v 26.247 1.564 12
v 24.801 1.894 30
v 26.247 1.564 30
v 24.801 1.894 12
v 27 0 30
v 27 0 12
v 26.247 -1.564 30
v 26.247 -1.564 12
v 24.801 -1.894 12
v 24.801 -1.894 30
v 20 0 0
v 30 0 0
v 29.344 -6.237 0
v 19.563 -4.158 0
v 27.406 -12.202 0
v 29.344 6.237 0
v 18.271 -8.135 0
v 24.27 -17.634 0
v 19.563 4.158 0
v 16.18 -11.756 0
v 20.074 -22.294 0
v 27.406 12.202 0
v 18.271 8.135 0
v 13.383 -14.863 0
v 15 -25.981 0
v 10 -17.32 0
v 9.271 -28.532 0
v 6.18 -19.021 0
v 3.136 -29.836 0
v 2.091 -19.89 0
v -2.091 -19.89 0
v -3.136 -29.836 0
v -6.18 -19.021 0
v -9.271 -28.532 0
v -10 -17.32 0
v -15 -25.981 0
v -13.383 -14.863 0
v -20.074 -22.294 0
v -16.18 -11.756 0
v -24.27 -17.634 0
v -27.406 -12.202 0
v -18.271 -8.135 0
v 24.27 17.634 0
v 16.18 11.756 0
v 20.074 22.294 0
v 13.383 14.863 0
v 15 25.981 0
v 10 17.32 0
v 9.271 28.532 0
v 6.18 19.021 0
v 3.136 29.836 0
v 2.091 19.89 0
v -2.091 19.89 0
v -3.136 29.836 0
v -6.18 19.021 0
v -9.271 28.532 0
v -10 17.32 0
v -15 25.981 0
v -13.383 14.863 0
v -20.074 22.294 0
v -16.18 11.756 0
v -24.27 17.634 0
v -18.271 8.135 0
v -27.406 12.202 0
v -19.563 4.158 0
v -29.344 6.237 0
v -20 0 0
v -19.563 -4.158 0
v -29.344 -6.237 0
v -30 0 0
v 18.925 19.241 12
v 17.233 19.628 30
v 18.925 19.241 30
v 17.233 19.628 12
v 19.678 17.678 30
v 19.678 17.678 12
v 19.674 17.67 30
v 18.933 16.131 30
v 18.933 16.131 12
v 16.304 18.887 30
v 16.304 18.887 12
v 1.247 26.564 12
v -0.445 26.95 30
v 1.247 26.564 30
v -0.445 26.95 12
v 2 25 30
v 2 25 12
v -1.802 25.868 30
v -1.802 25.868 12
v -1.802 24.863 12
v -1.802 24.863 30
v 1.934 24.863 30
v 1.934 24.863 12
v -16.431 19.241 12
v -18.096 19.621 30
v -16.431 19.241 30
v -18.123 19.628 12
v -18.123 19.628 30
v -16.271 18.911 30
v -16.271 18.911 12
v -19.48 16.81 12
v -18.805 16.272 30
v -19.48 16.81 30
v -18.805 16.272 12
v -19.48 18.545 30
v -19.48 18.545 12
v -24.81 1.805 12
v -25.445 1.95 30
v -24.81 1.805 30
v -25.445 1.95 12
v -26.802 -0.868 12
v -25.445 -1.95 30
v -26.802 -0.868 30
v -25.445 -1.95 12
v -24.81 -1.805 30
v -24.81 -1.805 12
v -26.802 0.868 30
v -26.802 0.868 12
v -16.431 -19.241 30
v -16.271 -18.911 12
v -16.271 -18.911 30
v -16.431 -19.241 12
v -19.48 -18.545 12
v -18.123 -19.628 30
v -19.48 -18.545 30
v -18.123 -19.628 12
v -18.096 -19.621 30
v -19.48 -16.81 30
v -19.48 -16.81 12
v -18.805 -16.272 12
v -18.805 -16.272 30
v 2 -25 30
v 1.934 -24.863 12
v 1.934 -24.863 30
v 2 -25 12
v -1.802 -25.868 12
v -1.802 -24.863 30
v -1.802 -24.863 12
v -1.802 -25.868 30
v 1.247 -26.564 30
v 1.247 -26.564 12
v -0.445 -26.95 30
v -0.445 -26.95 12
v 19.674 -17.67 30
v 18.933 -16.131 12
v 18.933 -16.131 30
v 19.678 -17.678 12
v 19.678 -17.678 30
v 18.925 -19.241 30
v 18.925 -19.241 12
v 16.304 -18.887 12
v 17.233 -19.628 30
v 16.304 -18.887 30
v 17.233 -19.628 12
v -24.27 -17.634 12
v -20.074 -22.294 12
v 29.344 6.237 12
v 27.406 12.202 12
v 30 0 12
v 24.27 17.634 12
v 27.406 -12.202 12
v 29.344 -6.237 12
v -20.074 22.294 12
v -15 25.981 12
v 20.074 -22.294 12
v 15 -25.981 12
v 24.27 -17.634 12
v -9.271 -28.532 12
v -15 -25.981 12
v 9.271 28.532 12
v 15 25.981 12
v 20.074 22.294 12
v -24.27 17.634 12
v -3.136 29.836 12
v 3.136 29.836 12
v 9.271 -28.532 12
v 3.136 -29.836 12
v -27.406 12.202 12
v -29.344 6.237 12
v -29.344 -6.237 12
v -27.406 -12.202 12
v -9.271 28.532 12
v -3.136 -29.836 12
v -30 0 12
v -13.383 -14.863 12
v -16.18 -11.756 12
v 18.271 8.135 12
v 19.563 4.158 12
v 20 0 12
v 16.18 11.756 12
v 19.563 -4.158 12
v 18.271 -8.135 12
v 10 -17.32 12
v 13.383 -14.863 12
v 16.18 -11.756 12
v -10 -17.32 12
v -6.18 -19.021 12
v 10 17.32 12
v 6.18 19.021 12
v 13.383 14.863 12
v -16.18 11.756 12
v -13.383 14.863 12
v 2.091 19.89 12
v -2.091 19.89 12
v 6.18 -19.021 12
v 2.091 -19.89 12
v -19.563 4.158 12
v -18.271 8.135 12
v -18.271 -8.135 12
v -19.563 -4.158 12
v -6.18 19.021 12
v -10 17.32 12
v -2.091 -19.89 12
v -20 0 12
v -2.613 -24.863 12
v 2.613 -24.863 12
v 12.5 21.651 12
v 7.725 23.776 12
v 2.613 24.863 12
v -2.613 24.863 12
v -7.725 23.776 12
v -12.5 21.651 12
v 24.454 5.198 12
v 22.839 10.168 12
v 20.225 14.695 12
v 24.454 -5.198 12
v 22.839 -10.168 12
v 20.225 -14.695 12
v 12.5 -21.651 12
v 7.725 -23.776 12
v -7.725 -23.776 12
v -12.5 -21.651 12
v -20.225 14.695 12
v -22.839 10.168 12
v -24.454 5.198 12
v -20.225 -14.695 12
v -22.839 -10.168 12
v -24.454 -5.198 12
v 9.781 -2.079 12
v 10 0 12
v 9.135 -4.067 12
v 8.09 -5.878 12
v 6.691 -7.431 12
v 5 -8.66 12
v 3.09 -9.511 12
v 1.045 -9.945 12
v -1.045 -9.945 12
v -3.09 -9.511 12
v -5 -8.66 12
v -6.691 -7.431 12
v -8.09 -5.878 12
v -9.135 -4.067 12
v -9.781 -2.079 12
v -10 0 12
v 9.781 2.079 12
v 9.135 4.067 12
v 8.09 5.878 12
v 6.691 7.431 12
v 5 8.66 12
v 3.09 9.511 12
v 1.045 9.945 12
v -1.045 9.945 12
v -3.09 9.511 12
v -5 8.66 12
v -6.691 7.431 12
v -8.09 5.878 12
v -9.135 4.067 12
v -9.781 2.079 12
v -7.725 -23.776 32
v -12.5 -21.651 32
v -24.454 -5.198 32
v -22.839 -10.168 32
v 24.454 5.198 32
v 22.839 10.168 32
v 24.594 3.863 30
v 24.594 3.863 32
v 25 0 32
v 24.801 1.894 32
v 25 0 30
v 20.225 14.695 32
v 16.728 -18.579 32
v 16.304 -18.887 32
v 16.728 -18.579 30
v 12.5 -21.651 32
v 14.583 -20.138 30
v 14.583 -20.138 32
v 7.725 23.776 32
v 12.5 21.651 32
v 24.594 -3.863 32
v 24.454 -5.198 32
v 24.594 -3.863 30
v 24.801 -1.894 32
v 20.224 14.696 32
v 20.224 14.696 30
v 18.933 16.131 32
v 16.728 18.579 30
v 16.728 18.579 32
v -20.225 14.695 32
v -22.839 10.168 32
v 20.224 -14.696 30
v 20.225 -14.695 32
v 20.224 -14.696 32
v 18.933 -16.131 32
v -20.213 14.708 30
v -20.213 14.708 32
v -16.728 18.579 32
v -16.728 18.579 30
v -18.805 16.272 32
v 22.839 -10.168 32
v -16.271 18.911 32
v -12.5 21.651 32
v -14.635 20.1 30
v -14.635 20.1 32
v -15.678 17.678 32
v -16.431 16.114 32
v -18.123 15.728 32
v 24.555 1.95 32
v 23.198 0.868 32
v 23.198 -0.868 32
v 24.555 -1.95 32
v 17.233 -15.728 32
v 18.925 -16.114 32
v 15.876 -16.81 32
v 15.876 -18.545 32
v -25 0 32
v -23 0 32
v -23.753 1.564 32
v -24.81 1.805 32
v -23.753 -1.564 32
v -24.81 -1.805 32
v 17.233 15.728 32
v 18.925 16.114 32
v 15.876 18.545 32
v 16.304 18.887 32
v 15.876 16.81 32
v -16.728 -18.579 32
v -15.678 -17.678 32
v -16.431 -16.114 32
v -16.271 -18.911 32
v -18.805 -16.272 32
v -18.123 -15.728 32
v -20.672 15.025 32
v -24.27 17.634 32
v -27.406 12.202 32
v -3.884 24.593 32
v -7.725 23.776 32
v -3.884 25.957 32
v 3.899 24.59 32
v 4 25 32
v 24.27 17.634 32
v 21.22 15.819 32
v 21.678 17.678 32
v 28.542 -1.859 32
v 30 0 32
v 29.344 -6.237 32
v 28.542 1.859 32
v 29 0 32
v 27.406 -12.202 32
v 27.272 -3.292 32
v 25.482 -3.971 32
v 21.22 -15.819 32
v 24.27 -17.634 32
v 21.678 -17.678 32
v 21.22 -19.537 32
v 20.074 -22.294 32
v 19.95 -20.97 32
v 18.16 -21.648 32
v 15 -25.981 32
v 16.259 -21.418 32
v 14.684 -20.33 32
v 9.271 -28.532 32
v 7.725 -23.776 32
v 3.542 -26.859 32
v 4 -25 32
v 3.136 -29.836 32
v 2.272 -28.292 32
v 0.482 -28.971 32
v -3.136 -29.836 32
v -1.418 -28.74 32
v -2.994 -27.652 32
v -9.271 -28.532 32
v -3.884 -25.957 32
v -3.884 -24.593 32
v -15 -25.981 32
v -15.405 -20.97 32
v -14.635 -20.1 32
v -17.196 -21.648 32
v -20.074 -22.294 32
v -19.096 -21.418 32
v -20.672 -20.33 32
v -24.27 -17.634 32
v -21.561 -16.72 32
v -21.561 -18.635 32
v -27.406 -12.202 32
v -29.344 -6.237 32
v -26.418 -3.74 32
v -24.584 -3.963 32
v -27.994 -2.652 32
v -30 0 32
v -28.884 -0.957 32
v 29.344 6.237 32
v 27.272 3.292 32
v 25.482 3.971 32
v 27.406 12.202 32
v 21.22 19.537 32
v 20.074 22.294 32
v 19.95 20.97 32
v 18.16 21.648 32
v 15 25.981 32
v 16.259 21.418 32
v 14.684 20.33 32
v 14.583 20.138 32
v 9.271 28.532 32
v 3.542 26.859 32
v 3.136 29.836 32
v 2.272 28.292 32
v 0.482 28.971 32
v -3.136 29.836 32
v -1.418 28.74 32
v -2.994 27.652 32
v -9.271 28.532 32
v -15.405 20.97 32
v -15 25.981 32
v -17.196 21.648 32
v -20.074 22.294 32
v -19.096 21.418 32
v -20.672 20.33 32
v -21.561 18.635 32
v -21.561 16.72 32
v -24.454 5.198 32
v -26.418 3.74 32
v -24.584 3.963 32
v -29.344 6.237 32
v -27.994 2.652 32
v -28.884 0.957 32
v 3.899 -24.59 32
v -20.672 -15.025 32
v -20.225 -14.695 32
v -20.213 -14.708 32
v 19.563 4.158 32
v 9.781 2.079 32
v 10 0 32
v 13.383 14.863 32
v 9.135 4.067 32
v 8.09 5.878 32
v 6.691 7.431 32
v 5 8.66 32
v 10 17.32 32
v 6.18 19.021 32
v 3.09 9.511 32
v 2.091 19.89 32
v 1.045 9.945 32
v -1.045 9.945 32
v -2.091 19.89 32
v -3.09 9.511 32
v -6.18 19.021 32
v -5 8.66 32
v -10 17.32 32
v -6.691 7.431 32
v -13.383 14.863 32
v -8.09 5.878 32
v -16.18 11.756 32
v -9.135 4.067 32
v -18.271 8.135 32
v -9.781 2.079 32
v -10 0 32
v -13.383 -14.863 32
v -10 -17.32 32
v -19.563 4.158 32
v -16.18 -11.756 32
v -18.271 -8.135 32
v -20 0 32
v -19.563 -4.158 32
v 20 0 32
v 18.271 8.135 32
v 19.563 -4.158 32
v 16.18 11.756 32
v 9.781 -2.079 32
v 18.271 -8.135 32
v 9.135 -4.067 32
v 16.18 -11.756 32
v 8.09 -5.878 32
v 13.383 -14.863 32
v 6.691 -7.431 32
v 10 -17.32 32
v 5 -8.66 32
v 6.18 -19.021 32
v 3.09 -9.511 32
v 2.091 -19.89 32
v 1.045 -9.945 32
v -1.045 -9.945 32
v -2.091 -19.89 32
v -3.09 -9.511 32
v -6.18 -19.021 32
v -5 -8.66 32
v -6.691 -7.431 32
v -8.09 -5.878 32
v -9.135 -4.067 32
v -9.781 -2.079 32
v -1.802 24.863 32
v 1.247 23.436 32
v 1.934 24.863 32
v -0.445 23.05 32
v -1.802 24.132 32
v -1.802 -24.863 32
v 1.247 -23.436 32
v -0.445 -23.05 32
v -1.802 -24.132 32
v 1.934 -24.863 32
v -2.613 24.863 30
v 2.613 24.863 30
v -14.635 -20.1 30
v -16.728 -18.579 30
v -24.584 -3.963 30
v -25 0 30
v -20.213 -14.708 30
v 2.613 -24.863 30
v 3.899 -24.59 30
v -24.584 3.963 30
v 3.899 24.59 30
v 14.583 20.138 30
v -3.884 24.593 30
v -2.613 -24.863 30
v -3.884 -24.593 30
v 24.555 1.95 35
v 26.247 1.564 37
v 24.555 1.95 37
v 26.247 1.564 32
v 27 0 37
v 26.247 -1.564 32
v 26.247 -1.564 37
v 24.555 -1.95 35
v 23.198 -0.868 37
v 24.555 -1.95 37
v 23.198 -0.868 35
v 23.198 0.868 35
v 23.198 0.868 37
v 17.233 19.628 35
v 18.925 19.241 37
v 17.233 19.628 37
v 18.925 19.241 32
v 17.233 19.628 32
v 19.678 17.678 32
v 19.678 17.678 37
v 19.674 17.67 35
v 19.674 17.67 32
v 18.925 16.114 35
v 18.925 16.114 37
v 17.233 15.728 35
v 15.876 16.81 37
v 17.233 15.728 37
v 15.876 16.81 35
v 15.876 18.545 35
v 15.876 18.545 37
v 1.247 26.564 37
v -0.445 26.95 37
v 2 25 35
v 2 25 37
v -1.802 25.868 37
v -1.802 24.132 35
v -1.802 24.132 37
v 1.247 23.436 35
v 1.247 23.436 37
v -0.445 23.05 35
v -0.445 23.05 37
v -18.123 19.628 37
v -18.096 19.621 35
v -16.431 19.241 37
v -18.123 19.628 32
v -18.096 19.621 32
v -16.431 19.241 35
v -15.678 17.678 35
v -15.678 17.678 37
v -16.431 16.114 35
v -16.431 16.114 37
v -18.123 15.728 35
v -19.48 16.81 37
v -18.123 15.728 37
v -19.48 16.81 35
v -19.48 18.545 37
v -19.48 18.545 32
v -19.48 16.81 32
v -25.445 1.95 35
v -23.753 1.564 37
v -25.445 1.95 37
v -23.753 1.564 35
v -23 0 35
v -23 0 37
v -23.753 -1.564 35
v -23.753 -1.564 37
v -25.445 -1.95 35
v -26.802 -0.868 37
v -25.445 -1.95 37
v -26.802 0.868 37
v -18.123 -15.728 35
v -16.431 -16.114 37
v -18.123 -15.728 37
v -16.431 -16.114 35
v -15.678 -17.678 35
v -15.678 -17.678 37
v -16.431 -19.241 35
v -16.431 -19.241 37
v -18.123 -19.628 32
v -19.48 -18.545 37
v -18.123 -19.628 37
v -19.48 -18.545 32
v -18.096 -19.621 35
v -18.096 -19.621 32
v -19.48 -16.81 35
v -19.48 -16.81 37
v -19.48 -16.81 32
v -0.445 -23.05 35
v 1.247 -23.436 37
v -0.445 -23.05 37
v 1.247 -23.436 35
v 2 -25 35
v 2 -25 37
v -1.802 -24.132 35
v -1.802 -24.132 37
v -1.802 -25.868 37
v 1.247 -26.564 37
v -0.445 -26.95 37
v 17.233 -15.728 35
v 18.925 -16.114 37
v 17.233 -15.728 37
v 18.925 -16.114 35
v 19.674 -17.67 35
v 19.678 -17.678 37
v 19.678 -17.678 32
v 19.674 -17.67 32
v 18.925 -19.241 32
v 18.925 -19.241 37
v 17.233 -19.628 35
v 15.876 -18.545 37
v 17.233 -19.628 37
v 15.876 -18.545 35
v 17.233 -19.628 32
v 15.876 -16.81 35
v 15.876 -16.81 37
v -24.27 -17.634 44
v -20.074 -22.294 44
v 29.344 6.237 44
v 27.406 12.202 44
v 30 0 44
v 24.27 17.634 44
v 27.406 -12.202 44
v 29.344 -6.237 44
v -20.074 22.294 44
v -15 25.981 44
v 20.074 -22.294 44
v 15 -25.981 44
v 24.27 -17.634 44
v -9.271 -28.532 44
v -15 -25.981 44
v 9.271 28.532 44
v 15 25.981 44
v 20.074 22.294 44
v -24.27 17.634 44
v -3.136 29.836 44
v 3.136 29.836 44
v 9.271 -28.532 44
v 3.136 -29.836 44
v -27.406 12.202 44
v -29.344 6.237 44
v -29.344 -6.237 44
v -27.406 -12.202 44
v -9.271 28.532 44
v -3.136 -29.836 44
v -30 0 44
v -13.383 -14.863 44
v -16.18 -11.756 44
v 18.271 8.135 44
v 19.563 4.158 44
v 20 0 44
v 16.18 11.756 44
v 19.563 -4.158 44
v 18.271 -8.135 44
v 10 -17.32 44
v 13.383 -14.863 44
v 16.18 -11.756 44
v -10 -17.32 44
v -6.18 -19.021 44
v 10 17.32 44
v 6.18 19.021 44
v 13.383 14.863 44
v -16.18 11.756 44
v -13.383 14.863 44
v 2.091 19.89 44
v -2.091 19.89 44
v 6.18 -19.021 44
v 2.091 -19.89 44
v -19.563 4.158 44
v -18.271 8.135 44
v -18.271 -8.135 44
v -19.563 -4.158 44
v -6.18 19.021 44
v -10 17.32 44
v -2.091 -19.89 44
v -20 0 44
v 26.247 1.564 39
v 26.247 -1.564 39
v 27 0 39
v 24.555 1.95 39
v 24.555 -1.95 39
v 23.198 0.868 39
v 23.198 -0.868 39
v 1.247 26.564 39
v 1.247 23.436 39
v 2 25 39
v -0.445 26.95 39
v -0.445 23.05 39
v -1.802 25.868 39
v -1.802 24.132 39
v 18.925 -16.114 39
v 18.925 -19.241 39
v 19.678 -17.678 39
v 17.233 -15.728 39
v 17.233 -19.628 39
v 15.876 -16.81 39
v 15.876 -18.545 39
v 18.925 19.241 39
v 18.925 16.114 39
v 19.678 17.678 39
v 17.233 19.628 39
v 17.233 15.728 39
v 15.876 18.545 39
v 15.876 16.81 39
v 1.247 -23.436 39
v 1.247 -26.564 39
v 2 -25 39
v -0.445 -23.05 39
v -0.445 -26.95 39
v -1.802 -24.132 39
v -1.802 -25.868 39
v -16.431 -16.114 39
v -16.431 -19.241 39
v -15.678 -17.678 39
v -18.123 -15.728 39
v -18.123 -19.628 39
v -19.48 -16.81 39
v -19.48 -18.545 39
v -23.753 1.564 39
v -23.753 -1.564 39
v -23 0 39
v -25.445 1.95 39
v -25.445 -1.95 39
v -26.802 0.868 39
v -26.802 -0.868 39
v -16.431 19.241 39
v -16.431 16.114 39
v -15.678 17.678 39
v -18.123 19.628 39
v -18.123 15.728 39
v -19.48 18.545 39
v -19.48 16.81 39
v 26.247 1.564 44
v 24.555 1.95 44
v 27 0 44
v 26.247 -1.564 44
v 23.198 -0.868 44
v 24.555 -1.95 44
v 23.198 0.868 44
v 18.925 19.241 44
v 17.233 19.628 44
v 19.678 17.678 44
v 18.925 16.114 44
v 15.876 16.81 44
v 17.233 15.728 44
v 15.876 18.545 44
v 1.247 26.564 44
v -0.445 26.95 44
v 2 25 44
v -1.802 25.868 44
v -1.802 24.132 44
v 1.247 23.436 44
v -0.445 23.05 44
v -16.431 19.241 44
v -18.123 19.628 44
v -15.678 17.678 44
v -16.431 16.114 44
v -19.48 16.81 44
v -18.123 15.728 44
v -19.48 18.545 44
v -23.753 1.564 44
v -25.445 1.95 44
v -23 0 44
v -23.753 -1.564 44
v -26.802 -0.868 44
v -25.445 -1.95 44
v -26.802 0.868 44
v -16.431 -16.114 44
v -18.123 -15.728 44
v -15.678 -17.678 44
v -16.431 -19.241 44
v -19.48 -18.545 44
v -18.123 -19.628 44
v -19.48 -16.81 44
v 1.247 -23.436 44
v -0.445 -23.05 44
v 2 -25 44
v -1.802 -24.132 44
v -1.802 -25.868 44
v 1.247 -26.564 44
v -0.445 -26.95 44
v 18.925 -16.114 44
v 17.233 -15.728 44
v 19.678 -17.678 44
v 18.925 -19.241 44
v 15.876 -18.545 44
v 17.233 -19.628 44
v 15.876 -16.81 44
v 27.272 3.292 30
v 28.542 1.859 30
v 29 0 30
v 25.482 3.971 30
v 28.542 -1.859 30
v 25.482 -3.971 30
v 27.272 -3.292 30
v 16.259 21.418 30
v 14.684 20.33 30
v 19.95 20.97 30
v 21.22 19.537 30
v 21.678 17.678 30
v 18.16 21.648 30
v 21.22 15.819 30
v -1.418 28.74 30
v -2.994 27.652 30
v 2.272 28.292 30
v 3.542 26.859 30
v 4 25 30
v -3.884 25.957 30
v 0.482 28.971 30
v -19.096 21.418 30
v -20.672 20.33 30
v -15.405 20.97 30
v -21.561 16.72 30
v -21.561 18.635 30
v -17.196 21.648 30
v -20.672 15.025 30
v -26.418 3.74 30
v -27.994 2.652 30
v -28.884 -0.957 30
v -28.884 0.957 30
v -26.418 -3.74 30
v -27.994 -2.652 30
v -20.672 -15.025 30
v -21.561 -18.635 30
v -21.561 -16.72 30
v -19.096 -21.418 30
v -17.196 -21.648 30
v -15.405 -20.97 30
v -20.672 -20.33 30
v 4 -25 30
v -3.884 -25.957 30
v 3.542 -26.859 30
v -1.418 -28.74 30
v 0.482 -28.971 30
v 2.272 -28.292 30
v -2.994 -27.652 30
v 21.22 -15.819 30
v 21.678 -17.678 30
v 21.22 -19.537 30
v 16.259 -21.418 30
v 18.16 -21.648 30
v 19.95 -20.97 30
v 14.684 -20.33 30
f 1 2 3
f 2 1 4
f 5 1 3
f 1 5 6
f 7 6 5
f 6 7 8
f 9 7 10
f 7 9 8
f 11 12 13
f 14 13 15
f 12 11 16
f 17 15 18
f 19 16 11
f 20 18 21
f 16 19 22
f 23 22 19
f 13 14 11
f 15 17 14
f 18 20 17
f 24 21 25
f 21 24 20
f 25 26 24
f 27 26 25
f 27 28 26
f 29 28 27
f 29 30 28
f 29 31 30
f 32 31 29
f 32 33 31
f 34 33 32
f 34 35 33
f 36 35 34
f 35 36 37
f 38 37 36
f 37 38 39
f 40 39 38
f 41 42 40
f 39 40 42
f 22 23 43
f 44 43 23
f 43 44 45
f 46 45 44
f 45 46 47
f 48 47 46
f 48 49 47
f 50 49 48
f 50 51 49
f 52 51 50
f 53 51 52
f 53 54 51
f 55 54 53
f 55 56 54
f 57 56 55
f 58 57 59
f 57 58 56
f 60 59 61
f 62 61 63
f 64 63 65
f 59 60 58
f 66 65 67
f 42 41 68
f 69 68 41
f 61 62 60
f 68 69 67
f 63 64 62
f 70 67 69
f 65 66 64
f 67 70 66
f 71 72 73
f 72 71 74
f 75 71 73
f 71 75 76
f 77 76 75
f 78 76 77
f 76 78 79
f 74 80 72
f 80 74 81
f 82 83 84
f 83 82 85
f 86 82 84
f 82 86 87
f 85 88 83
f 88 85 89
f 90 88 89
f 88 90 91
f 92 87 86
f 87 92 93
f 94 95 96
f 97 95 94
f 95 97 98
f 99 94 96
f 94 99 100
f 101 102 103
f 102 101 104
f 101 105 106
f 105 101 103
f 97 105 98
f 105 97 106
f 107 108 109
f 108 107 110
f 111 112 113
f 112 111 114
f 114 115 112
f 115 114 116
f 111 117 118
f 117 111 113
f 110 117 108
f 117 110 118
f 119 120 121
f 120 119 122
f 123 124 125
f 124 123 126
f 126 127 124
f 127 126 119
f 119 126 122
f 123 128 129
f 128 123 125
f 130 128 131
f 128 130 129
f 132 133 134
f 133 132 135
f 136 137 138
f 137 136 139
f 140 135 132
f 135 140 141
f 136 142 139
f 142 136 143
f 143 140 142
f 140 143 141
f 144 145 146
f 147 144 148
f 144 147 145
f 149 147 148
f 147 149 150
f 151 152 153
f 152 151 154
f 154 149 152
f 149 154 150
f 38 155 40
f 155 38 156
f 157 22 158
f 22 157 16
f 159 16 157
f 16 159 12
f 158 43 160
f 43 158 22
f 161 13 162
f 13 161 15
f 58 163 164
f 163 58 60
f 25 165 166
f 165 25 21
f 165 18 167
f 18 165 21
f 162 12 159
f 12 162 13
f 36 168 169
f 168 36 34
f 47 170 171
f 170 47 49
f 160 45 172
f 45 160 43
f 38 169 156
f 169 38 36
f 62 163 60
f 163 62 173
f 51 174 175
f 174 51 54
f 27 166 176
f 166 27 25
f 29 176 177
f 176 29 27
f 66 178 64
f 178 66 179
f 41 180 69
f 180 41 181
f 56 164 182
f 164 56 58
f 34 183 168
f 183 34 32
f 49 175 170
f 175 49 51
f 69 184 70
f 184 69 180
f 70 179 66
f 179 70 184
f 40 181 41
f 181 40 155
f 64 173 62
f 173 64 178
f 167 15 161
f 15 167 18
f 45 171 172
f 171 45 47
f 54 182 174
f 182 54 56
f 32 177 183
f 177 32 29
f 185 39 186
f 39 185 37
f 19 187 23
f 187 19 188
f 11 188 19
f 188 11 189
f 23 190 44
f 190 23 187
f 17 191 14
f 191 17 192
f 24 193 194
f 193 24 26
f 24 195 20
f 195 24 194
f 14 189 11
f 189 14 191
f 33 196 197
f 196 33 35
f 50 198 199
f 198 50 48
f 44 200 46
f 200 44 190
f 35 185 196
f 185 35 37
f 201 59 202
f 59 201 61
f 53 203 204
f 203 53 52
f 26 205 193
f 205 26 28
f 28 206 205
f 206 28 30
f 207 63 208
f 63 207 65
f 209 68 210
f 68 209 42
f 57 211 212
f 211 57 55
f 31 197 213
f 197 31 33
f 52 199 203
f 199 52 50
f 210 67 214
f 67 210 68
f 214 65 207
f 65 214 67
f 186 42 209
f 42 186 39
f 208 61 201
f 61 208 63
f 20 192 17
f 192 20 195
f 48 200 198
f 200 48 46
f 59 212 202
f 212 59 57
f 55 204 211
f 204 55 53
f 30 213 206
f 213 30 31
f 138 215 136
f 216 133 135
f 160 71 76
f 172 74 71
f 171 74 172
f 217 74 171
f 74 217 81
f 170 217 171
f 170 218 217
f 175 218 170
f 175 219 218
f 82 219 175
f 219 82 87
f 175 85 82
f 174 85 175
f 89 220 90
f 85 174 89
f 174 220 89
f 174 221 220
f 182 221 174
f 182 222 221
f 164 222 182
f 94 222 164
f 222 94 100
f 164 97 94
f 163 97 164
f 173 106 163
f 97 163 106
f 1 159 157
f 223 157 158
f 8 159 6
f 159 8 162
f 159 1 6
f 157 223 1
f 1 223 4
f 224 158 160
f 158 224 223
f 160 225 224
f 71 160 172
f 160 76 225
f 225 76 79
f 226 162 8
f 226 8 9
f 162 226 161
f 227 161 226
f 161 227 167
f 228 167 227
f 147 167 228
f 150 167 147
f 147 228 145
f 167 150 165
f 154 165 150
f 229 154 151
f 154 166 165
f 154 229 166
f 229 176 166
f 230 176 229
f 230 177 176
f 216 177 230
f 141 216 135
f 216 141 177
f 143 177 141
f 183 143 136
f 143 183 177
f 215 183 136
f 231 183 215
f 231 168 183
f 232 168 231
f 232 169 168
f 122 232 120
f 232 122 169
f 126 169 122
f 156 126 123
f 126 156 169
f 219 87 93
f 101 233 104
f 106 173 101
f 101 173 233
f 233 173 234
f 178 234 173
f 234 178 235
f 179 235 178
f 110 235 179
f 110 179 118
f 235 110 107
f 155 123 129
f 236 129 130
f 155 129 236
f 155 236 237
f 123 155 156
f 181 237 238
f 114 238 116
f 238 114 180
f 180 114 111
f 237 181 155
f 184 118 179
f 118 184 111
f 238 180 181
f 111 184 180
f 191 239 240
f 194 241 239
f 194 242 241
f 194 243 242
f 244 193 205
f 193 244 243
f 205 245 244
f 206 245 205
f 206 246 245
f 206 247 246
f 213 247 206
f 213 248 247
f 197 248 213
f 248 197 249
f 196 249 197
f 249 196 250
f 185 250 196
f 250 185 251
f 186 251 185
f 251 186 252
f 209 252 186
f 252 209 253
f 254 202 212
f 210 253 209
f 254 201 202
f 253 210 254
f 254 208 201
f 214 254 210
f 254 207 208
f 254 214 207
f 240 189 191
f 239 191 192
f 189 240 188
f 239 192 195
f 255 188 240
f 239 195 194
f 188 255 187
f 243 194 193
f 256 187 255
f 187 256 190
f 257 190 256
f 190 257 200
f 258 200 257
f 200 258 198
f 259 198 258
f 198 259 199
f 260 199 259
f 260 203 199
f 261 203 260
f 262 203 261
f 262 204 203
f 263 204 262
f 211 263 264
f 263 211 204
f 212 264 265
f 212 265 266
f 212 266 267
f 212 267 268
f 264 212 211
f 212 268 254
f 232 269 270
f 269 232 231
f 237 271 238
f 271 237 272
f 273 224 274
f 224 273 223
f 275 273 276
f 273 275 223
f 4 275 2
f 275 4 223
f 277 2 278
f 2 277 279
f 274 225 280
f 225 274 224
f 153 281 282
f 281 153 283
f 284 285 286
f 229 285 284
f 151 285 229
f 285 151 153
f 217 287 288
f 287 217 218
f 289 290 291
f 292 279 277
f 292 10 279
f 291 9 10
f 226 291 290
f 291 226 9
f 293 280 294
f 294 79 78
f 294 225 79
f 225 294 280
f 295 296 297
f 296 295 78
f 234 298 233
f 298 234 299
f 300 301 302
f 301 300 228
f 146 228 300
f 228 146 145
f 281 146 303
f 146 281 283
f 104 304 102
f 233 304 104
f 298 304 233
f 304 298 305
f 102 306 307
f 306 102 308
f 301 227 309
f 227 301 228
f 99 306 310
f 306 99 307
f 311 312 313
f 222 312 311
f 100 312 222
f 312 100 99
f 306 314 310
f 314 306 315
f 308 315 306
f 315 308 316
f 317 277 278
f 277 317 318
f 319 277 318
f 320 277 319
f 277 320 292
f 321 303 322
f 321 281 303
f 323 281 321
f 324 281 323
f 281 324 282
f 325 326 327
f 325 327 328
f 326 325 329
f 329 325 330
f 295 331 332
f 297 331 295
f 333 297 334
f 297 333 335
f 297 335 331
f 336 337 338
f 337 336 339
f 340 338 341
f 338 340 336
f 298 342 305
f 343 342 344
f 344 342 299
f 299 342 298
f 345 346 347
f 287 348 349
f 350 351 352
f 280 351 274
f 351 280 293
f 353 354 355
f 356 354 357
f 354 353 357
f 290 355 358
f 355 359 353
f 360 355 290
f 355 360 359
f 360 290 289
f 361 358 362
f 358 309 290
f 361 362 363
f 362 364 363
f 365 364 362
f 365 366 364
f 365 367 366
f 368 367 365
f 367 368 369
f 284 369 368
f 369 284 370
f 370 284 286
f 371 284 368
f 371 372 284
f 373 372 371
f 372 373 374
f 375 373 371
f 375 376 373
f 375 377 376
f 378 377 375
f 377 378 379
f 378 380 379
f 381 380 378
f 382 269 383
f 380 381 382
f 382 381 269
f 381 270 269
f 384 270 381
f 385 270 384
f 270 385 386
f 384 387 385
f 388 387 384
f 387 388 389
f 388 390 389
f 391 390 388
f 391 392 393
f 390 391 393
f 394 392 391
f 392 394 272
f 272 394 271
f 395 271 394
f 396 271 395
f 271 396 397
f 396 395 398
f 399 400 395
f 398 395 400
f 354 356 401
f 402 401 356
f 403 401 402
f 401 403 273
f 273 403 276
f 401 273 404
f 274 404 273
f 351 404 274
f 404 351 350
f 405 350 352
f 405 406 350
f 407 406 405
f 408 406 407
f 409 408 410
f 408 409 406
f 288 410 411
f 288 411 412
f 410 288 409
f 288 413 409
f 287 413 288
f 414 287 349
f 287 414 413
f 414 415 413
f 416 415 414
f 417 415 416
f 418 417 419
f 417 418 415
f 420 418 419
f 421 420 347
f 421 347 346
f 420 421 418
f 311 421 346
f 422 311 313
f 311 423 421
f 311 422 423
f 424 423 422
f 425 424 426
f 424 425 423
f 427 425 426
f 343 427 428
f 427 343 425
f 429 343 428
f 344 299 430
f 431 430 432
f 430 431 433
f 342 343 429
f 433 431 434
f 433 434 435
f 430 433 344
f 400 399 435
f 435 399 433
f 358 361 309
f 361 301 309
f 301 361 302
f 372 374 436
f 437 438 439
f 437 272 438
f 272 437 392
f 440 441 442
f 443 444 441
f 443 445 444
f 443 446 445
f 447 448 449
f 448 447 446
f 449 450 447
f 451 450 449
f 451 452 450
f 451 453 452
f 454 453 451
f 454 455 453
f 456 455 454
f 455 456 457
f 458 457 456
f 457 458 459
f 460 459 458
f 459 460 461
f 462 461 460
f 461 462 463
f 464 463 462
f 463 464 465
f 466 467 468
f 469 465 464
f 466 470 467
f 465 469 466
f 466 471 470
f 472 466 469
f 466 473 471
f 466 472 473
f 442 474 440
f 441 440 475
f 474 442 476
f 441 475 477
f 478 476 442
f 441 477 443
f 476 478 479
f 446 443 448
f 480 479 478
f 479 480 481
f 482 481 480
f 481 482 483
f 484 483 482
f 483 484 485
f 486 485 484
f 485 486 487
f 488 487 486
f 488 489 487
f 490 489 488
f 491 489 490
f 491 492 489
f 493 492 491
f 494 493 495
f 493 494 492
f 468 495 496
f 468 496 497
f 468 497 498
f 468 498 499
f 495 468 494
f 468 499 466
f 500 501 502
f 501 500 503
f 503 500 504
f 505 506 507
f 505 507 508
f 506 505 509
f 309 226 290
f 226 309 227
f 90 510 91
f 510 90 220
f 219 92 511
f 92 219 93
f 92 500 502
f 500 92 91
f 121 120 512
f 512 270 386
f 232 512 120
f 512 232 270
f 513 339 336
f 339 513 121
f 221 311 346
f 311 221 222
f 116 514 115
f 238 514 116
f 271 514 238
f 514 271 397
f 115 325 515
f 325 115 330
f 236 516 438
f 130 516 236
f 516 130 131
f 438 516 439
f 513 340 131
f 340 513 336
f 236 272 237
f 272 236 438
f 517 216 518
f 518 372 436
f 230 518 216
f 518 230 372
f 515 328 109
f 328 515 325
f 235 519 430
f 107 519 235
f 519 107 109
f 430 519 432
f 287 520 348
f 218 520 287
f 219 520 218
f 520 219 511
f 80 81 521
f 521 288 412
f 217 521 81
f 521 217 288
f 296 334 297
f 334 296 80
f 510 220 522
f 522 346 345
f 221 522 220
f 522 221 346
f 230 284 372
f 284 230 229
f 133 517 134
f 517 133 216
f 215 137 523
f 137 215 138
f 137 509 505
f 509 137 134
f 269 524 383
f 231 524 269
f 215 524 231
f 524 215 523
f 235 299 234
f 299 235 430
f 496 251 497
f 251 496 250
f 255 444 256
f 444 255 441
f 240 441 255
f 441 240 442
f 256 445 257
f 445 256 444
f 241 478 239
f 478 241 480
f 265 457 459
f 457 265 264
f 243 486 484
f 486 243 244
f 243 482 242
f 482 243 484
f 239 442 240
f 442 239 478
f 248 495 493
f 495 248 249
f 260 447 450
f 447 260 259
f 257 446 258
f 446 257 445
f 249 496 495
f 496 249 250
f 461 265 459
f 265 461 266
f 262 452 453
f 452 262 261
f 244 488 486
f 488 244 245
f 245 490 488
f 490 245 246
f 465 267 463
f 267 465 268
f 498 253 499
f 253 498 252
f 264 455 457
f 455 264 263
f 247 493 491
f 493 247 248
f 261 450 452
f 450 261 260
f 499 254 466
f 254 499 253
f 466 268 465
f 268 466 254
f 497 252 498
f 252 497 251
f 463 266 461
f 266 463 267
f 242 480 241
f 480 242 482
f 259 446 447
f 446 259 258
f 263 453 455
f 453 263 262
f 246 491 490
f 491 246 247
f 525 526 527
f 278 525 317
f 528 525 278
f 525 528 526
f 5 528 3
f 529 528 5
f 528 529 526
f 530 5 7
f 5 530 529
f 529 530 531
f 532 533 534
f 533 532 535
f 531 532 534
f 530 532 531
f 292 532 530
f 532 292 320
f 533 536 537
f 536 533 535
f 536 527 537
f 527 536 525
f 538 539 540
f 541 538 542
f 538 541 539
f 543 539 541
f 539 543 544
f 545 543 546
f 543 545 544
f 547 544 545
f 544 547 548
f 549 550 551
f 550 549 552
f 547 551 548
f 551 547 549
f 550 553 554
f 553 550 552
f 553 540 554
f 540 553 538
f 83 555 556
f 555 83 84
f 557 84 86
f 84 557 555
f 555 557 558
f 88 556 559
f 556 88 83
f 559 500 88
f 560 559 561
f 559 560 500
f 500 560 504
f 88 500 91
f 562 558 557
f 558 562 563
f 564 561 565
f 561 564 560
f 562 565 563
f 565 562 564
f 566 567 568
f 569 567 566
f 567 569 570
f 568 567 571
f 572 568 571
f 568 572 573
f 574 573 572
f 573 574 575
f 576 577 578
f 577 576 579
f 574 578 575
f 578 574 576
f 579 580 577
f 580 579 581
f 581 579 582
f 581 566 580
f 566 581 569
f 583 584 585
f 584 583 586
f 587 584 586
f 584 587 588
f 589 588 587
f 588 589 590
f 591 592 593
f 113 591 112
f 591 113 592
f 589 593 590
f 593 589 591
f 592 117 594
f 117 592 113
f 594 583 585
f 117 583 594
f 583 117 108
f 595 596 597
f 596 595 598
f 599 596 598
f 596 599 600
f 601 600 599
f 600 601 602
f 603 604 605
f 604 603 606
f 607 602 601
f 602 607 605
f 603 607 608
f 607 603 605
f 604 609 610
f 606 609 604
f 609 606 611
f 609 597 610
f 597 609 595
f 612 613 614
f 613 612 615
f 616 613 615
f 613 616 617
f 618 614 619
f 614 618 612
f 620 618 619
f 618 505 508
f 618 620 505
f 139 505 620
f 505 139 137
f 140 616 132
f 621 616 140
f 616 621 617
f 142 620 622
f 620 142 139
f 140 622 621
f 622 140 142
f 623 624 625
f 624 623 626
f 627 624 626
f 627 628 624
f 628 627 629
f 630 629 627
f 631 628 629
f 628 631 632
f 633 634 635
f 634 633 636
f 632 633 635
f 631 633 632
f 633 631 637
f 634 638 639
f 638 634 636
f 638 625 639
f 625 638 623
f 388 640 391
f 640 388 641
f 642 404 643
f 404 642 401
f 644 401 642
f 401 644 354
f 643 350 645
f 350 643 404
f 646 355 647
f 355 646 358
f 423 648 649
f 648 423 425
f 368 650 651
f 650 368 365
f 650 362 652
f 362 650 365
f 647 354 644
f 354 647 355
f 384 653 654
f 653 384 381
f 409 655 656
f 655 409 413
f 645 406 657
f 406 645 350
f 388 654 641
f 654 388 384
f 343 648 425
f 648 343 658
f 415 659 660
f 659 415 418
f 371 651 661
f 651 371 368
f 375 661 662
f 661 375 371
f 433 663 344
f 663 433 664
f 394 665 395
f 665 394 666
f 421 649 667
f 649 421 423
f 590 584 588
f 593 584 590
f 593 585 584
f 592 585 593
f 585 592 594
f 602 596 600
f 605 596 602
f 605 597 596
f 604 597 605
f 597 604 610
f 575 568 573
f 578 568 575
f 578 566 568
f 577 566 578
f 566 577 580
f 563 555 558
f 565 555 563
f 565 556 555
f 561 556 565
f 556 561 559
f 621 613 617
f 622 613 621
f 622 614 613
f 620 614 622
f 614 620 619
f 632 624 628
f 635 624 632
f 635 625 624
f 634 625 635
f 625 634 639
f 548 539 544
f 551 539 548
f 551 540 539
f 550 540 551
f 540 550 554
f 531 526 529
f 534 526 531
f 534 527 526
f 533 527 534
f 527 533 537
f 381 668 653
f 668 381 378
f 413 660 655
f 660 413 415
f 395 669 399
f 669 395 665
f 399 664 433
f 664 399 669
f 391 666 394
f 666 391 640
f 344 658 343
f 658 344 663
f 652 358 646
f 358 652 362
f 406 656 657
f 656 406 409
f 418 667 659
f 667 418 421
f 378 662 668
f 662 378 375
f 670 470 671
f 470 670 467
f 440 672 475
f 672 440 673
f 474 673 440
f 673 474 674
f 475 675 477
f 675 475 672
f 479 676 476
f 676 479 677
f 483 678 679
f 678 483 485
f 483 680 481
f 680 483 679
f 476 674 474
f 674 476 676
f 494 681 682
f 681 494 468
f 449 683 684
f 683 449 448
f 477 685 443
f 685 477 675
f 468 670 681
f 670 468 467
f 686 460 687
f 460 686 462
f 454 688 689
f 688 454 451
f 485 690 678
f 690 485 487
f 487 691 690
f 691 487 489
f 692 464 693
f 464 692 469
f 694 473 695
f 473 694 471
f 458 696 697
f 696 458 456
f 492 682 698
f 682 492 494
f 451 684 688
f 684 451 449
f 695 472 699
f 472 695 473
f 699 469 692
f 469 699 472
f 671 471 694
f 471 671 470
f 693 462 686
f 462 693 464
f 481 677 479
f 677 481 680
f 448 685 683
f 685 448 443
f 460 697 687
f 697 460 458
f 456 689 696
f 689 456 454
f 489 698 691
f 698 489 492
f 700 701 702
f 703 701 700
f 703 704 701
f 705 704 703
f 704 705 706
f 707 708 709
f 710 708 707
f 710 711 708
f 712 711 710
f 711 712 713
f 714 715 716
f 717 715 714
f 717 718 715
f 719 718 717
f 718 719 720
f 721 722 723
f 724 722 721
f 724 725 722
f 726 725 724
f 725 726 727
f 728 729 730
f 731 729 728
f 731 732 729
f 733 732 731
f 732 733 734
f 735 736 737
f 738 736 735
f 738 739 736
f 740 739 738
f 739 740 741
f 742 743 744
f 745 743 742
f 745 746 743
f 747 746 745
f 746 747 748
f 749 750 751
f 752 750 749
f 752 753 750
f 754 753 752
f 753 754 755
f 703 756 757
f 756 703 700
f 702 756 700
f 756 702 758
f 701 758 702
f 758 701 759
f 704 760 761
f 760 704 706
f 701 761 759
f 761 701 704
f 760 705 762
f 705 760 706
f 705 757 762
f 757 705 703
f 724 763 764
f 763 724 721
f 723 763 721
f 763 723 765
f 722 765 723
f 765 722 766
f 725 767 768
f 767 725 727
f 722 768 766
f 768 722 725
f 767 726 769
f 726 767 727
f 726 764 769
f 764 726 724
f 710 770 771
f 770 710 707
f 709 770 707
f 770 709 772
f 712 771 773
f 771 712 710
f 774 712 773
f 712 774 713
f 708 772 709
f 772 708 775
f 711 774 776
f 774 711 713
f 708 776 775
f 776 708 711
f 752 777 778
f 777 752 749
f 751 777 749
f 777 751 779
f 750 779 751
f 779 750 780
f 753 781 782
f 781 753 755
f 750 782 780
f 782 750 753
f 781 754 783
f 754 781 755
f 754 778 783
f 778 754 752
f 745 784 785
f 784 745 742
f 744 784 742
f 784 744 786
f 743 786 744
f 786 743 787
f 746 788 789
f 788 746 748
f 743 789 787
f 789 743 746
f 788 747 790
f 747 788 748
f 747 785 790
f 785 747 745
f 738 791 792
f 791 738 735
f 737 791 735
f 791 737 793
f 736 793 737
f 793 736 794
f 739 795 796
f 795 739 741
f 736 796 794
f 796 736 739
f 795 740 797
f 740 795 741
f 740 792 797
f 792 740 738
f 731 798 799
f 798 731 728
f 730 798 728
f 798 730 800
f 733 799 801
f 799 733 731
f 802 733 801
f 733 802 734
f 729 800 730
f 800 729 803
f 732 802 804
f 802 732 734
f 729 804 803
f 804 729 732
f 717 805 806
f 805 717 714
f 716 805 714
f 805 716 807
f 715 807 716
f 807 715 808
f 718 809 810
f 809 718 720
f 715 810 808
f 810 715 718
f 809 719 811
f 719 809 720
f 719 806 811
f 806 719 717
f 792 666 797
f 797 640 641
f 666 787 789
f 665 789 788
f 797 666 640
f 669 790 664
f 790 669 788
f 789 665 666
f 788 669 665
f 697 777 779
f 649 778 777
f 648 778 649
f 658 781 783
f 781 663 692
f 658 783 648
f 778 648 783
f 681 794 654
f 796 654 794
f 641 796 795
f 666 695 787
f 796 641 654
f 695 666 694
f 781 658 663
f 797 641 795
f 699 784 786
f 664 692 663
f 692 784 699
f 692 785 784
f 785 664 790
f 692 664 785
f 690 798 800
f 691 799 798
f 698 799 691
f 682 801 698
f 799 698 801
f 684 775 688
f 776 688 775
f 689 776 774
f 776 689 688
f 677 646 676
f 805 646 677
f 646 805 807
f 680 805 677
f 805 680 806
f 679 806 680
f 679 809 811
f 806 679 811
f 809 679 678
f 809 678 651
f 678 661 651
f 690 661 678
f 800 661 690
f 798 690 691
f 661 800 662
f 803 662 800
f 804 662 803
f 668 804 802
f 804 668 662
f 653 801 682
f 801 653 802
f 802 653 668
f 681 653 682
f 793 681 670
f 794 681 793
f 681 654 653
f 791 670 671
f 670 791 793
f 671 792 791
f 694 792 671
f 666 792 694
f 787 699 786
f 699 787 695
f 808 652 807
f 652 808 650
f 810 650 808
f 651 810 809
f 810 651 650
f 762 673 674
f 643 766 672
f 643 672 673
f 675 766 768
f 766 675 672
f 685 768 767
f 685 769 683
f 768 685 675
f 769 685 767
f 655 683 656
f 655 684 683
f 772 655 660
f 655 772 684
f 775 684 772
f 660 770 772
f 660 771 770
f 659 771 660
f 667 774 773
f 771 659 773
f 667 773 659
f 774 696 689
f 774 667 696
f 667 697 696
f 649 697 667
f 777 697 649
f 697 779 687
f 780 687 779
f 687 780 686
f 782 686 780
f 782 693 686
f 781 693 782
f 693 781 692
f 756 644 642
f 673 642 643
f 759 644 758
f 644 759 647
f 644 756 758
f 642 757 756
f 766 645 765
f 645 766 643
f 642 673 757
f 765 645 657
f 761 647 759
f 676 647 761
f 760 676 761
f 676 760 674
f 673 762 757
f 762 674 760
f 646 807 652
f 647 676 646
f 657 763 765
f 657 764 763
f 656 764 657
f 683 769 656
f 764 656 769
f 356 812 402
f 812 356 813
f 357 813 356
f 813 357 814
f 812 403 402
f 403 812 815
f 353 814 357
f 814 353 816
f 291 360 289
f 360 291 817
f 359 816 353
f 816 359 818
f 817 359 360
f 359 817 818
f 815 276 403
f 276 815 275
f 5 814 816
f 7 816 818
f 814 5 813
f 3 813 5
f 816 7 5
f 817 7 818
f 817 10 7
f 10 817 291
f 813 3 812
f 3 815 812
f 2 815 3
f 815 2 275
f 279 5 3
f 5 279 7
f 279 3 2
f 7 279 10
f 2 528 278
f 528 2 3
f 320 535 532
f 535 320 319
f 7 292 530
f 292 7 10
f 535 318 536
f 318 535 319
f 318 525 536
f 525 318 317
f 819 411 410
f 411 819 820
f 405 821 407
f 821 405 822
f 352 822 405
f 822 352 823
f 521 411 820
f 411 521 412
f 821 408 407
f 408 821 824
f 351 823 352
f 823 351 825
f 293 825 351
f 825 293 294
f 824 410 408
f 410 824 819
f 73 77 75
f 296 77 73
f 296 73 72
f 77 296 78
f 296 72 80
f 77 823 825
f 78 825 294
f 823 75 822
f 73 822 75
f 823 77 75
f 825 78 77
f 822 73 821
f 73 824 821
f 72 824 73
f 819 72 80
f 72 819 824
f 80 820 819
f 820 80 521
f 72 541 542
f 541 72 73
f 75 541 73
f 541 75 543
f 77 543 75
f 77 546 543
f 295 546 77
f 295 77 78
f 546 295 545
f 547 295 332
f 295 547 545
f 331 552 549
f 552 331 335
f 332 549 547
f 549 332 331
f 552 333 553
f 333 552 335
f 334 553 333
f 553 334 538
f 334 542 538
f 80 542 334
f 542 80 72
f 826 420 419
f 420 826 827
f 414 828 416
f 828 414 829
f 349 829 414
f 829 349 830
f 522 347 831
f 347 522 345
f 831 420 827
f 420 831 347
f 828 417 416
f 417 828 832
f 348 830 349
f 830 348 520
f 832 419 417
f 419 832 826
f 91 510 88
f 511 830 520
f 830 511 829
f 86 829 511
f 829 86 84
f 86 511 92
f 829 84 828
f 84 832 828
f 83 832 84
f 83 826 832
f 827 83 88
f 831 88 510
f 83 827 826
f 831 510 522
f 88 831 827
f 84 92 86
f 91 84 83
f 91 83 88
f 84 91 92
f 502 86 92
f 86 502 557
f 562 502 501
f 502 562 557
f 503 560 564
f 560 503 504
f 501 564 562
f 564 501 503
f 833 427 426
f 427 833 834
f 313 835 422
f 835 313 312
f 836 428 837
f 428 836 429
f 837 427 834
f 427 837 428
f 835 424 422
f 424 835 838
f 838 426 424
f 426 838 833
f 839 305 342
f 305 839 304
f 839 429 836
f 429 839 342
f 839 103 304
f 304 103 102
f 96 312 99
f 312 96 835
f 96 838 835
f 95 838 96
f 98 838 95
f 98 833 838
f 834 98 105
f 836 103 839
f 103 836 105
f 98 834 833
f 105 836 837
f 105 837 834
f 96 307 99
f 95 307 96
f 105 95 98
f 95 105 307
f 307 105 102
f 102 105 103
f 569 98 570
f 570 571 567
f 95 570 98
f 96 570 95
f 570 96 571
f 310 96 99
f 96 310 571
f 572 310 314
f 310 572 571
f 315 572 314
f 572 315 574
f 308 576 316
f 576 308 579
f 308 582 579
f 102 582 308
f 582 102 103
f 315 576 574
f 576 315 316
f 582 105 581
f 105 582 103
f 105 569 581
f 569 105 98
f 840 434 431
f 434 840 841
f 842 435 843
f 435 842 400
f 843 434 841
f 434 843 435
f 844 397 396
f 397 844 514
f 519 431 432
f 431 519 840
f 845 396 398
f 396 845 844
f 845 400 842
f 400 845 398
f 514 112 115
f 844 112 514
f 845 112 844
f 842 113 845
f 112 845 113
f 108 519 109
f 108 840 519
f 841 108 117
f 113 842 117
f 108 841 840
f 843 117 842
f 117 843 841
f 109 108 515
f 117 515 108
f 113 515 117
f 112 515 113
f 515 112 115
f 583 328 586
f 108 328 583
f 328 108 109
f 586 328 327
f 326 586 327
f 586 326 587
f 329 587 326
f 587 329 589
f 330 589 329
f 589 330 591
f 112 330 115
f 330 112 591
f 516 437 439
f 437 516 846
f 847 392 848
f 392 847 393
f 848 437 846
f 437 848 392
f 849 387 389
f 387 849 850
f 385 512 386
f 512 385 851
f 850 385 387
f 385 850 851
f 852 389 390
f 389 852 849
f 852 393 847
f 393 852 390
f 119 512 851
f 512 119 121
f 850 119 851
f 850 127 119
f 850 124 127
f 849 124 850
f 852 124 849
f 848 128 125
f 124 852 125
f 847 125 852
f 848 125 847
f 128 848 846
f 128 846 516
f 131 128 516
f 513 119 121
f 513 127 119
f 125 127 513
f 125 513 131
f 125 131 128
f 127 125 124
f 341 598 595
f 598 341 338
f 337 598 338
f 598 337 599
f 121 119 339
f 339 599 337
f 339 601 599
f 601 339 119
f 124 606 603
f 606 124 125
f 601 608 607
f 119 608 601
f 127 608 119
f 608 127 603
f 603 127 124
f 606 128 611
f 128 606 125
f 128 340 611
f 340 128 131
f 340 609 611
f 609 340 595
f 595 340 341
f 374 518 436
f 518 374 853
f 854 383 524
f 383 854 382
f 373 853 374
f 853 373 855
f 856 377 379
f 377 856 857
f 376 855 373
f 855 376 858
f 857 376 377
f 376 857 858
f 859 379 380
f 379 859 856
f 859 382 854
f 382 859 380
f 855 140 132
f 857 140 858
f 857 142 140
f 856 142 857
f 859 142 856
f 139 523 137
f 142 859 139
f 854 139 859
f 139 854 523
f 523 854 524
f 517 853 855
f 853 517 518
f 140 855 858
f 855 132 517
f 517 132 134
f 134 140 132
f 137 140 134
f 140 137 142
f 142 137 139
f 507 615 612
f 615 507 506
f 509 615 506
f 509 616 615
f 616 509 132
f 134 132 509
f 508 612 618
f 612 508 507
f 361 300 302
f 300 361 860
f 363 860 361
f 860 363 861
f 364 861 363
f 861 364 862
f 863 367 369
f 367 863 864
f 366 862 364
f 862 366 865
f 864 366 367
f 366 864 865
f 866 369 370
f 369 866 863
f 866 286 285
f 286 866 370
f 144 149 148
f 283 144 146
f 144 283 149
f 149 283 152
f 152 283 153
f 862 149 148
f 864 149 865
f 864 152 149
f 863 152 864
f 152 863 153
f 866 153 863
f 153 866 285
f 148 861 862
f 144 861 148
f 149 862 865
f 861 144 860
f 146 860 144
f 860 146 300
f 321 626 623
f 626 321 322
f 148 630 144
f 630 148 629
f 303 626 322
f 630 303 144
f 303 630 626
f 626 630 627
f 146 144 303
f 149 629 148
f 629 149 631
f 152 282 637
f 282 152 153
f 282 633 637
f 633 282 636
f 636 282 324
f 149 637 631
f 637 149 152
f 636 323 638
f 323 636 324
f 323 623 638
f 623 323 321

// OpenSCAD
// Parameters for components
module flange_plate() {
    difference() {
        cylinder(h=5, r=30); // Outer cylinder
        cylinder(h=6, r=20); // Inner hole
        for (i = [0:45:315]) { // Bolt holes
            translate([25*cos(i), 25*sin(i), 0])
                cylinder(h=6, r=2);
        }
    }
}

module spacer_ring() {
    difference() {
        cylinder(h=2, r=30); // Outer cylinder
        cylinder(h=3, r=20); // Inner hole
    }
}

module central_craft() {
    difference() {
        cylinder(h=20, r=25); // Outer cylinder
        cylinder(h=21, r=10); // Inner hole
    }
}

module bolt() {
    cylinder(h=30, r=2); // Bolt body
}

module nut() {
    difference() {
        cylinder(h=5, r=4); // Outer hexagonal cylinder
        cylinder(h=6, r=2); // Inner threading
    }
}

// Assembly
module flexible_coupling() {
    // Layer 1: Top flange plate
    translate([0, 0, 0])
        flange_plate();

    // Layer 2: Spacer ring
    translate([0, 0, 5])
        spacer_ring();

    // Layer 3: Second flange plate
    translate([0, 0, 7])
        flange_plate();

    // Layer 4: Central craft
    translate([0, 0, 12])
        central_craft();

    // Layer 5: Third flange plate
    translate([0, 0, 32])
        flange_plate();

    // Layer 6: Second spacer ring
    translate([0, 0, 37])
        spacer_ring();

    // Layer 7: Bottom flange plate
    translate([0, 0, 39])
        flange_plate();

    // Bolts and nuts
    for (i = [0:45:315]) {
        translate([25*cos(i), 25*sin(i), 0])
            bolt();
        translate([25*cos(i), 25*sin(i), 30])
            nut();
    }
}

// Render the flexible coupling
flexible_coupling();
